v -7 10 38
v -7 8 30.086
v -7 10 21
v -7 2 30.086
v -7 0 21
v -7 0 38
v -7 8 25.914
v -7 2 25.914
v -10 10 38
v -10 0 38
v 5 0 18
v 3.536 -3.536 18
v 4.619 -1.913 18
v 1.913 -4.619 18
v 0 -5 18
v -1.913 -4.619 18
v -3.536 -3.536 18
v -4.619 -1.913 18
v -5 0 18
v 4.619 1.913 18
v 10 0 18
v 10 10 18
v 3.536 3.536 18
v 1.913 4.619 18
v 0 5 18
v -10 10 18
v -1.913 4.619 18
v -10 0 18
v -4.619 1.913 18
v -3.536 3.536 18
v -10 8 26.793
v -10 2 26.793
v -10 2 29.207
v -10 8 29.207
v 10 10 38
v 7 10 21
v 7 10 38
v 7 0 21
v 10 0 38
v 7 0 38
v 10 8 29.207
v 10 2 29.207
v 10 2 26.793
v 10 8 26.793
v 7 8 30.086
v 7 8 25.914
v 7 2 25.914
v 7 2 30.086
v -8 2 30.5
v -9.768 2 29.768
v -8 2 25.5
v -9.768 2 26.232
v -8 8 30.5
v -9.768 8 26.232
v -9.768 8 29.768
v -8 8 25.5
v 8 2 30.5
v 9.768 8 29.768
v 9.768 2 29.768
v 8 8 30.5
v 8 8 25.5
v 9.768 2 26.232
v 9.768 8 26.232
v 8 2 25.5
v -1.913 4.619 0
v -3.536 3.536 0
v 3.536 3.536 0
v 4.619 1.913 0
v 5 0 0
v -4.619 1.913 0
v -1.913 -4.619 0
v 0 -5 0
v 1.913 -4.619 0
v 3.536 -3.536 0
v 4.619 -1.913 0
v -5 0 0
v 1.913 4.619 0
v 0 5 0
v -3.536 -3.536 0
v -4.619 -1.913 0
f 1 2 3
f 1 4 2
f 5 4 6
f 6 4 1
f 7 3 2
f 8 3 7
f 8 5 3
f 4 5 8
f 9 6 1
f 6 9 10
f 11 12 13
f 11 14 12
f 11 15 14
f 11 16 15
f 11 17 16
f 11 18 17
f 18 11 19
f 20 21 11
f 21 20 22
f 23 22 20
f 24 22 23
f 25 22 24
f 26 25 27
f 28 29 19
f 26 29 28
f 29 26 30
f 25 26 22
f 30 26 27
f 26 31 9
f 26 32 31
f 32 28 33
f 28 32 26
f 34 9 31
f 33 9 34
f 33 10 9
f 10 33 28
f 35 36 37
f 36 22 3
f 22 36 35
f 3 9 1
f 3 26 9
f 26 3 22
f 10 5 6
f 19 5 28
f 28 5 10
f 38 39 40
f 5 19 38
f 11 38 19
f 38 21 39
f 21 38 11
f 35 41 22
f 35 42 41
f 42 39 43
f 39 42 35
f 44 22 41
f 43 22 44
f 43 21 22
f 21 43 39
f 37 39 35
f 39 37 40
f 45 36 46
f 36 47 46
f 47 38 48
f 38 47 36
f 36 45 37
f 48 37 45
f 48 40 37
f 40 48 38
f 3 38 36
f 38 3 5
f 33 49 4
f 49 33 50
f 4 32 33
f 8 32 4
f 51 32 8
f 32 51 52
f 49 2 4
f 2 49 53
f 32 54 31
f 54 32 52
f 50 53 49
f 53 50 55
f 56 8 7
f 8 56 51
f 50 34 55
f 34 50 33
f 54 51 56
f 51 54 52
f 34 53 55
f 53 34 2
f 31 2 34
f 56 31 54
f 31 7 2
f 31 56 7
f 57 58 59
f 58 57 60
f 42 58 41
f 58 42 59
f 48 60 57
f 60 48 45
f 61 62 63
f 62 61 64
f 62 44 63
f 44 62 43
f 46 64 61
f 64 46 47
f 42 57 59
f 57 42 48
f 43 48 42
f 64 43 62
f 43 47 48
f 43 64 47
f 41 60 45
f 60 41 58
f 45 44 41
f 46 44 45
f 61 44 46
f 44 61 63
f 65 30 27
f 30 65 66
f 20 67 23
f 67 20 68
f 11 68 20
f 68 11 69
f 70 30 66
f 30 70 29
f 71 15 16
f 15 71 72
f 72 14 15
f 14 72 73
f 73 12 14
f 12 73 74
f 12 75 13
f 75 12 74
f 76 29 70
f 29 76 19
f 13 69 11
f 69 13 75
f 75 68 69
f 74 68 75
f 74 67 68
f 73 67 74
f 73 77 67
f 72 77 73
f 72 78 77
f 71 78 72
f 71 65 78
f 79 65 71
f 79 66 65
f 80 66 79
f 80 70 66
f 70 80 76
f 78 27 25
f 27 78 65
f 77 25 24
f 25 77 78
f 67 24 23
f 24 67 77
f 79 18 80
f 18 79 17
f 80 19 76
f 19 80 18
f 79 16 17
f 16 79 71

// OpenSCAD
// Parameters
u_shaped_connector_width = 20; // Width of the U-shaped connector
u_shaped_connector_height = 10; // Height of the U arms
u_shaped_connector_thickness = 3; // Adjusted thickness for thinner arms
u_hole_diameter = 5; // Diameter of the holes in the U arms
u_hole_offset = 2; // Adjusted offset for holes closer to the ends
cylindrical_base_diameter = 10; // Diameter of the cylindrical base
cylindrical_base_height = 18; // Reduced height for correct alignment

// U-shaped connector
module u_shaped_connector() {
    difference() {
        // Main U-shape
        union() {
            // Left arm
            translate([-u_shaped_connector_width/2, 0, 0])
                cube([u_shaped_connector_thickness, u_shaped_connector_height, u_shaped_connector_width]);

            // Right arm
            translate([u_shaped_connector_width/2 - u_shaped_connector_thickness, 0, 0])
                cube([u_shaped_connector_thickness, u_shaped_connector_height, u_shaped_connector_width]);

            // Base of the U
            translate([-u_shaped_connector_width/2, 0, 0])
                cube([u_shaped_connector_width, u_shaped_connector_height, u_shaped_connector_thickness]);
        }

        // Holes in the arms
        translate([-u_shaped_connector_width/2 + u_hole_offset, u_shaped_connector_height/2, u_shaped_connector_width/2])
            rotate([90, 0, 0])
                cylinder(r=u_hole_diameter/2, h=u_shaped_connector_thickness*2, center=true);

        translate([u_shaped_connector_width/2 - u_hole_offset, u_shaped_connector_height/2, u_shaped_connector_width/2])
            rotate([90, 0, 0])
                cylinder(r=u_hole_diameter/2, h=u_shaped_connector_thickness*2, center=true);
    }
}

// Cylindrical base
module cylindrical_base() {
    cylinder(r=cylindrical_base_diameter/2, h=cylindrical_base_height);
}

// Assembly
module flexible_coupling() {
    // Cylindrical base
    cylindrical_base();

    // U-shaped connector
    translate([0, 0, cylindrical_base_height])
        rotate([0, 0, 0]) // Adjusted rotation for straight alignment
            u_shaped_connector();
}

// Render the full assembly
flexible_coupling();
